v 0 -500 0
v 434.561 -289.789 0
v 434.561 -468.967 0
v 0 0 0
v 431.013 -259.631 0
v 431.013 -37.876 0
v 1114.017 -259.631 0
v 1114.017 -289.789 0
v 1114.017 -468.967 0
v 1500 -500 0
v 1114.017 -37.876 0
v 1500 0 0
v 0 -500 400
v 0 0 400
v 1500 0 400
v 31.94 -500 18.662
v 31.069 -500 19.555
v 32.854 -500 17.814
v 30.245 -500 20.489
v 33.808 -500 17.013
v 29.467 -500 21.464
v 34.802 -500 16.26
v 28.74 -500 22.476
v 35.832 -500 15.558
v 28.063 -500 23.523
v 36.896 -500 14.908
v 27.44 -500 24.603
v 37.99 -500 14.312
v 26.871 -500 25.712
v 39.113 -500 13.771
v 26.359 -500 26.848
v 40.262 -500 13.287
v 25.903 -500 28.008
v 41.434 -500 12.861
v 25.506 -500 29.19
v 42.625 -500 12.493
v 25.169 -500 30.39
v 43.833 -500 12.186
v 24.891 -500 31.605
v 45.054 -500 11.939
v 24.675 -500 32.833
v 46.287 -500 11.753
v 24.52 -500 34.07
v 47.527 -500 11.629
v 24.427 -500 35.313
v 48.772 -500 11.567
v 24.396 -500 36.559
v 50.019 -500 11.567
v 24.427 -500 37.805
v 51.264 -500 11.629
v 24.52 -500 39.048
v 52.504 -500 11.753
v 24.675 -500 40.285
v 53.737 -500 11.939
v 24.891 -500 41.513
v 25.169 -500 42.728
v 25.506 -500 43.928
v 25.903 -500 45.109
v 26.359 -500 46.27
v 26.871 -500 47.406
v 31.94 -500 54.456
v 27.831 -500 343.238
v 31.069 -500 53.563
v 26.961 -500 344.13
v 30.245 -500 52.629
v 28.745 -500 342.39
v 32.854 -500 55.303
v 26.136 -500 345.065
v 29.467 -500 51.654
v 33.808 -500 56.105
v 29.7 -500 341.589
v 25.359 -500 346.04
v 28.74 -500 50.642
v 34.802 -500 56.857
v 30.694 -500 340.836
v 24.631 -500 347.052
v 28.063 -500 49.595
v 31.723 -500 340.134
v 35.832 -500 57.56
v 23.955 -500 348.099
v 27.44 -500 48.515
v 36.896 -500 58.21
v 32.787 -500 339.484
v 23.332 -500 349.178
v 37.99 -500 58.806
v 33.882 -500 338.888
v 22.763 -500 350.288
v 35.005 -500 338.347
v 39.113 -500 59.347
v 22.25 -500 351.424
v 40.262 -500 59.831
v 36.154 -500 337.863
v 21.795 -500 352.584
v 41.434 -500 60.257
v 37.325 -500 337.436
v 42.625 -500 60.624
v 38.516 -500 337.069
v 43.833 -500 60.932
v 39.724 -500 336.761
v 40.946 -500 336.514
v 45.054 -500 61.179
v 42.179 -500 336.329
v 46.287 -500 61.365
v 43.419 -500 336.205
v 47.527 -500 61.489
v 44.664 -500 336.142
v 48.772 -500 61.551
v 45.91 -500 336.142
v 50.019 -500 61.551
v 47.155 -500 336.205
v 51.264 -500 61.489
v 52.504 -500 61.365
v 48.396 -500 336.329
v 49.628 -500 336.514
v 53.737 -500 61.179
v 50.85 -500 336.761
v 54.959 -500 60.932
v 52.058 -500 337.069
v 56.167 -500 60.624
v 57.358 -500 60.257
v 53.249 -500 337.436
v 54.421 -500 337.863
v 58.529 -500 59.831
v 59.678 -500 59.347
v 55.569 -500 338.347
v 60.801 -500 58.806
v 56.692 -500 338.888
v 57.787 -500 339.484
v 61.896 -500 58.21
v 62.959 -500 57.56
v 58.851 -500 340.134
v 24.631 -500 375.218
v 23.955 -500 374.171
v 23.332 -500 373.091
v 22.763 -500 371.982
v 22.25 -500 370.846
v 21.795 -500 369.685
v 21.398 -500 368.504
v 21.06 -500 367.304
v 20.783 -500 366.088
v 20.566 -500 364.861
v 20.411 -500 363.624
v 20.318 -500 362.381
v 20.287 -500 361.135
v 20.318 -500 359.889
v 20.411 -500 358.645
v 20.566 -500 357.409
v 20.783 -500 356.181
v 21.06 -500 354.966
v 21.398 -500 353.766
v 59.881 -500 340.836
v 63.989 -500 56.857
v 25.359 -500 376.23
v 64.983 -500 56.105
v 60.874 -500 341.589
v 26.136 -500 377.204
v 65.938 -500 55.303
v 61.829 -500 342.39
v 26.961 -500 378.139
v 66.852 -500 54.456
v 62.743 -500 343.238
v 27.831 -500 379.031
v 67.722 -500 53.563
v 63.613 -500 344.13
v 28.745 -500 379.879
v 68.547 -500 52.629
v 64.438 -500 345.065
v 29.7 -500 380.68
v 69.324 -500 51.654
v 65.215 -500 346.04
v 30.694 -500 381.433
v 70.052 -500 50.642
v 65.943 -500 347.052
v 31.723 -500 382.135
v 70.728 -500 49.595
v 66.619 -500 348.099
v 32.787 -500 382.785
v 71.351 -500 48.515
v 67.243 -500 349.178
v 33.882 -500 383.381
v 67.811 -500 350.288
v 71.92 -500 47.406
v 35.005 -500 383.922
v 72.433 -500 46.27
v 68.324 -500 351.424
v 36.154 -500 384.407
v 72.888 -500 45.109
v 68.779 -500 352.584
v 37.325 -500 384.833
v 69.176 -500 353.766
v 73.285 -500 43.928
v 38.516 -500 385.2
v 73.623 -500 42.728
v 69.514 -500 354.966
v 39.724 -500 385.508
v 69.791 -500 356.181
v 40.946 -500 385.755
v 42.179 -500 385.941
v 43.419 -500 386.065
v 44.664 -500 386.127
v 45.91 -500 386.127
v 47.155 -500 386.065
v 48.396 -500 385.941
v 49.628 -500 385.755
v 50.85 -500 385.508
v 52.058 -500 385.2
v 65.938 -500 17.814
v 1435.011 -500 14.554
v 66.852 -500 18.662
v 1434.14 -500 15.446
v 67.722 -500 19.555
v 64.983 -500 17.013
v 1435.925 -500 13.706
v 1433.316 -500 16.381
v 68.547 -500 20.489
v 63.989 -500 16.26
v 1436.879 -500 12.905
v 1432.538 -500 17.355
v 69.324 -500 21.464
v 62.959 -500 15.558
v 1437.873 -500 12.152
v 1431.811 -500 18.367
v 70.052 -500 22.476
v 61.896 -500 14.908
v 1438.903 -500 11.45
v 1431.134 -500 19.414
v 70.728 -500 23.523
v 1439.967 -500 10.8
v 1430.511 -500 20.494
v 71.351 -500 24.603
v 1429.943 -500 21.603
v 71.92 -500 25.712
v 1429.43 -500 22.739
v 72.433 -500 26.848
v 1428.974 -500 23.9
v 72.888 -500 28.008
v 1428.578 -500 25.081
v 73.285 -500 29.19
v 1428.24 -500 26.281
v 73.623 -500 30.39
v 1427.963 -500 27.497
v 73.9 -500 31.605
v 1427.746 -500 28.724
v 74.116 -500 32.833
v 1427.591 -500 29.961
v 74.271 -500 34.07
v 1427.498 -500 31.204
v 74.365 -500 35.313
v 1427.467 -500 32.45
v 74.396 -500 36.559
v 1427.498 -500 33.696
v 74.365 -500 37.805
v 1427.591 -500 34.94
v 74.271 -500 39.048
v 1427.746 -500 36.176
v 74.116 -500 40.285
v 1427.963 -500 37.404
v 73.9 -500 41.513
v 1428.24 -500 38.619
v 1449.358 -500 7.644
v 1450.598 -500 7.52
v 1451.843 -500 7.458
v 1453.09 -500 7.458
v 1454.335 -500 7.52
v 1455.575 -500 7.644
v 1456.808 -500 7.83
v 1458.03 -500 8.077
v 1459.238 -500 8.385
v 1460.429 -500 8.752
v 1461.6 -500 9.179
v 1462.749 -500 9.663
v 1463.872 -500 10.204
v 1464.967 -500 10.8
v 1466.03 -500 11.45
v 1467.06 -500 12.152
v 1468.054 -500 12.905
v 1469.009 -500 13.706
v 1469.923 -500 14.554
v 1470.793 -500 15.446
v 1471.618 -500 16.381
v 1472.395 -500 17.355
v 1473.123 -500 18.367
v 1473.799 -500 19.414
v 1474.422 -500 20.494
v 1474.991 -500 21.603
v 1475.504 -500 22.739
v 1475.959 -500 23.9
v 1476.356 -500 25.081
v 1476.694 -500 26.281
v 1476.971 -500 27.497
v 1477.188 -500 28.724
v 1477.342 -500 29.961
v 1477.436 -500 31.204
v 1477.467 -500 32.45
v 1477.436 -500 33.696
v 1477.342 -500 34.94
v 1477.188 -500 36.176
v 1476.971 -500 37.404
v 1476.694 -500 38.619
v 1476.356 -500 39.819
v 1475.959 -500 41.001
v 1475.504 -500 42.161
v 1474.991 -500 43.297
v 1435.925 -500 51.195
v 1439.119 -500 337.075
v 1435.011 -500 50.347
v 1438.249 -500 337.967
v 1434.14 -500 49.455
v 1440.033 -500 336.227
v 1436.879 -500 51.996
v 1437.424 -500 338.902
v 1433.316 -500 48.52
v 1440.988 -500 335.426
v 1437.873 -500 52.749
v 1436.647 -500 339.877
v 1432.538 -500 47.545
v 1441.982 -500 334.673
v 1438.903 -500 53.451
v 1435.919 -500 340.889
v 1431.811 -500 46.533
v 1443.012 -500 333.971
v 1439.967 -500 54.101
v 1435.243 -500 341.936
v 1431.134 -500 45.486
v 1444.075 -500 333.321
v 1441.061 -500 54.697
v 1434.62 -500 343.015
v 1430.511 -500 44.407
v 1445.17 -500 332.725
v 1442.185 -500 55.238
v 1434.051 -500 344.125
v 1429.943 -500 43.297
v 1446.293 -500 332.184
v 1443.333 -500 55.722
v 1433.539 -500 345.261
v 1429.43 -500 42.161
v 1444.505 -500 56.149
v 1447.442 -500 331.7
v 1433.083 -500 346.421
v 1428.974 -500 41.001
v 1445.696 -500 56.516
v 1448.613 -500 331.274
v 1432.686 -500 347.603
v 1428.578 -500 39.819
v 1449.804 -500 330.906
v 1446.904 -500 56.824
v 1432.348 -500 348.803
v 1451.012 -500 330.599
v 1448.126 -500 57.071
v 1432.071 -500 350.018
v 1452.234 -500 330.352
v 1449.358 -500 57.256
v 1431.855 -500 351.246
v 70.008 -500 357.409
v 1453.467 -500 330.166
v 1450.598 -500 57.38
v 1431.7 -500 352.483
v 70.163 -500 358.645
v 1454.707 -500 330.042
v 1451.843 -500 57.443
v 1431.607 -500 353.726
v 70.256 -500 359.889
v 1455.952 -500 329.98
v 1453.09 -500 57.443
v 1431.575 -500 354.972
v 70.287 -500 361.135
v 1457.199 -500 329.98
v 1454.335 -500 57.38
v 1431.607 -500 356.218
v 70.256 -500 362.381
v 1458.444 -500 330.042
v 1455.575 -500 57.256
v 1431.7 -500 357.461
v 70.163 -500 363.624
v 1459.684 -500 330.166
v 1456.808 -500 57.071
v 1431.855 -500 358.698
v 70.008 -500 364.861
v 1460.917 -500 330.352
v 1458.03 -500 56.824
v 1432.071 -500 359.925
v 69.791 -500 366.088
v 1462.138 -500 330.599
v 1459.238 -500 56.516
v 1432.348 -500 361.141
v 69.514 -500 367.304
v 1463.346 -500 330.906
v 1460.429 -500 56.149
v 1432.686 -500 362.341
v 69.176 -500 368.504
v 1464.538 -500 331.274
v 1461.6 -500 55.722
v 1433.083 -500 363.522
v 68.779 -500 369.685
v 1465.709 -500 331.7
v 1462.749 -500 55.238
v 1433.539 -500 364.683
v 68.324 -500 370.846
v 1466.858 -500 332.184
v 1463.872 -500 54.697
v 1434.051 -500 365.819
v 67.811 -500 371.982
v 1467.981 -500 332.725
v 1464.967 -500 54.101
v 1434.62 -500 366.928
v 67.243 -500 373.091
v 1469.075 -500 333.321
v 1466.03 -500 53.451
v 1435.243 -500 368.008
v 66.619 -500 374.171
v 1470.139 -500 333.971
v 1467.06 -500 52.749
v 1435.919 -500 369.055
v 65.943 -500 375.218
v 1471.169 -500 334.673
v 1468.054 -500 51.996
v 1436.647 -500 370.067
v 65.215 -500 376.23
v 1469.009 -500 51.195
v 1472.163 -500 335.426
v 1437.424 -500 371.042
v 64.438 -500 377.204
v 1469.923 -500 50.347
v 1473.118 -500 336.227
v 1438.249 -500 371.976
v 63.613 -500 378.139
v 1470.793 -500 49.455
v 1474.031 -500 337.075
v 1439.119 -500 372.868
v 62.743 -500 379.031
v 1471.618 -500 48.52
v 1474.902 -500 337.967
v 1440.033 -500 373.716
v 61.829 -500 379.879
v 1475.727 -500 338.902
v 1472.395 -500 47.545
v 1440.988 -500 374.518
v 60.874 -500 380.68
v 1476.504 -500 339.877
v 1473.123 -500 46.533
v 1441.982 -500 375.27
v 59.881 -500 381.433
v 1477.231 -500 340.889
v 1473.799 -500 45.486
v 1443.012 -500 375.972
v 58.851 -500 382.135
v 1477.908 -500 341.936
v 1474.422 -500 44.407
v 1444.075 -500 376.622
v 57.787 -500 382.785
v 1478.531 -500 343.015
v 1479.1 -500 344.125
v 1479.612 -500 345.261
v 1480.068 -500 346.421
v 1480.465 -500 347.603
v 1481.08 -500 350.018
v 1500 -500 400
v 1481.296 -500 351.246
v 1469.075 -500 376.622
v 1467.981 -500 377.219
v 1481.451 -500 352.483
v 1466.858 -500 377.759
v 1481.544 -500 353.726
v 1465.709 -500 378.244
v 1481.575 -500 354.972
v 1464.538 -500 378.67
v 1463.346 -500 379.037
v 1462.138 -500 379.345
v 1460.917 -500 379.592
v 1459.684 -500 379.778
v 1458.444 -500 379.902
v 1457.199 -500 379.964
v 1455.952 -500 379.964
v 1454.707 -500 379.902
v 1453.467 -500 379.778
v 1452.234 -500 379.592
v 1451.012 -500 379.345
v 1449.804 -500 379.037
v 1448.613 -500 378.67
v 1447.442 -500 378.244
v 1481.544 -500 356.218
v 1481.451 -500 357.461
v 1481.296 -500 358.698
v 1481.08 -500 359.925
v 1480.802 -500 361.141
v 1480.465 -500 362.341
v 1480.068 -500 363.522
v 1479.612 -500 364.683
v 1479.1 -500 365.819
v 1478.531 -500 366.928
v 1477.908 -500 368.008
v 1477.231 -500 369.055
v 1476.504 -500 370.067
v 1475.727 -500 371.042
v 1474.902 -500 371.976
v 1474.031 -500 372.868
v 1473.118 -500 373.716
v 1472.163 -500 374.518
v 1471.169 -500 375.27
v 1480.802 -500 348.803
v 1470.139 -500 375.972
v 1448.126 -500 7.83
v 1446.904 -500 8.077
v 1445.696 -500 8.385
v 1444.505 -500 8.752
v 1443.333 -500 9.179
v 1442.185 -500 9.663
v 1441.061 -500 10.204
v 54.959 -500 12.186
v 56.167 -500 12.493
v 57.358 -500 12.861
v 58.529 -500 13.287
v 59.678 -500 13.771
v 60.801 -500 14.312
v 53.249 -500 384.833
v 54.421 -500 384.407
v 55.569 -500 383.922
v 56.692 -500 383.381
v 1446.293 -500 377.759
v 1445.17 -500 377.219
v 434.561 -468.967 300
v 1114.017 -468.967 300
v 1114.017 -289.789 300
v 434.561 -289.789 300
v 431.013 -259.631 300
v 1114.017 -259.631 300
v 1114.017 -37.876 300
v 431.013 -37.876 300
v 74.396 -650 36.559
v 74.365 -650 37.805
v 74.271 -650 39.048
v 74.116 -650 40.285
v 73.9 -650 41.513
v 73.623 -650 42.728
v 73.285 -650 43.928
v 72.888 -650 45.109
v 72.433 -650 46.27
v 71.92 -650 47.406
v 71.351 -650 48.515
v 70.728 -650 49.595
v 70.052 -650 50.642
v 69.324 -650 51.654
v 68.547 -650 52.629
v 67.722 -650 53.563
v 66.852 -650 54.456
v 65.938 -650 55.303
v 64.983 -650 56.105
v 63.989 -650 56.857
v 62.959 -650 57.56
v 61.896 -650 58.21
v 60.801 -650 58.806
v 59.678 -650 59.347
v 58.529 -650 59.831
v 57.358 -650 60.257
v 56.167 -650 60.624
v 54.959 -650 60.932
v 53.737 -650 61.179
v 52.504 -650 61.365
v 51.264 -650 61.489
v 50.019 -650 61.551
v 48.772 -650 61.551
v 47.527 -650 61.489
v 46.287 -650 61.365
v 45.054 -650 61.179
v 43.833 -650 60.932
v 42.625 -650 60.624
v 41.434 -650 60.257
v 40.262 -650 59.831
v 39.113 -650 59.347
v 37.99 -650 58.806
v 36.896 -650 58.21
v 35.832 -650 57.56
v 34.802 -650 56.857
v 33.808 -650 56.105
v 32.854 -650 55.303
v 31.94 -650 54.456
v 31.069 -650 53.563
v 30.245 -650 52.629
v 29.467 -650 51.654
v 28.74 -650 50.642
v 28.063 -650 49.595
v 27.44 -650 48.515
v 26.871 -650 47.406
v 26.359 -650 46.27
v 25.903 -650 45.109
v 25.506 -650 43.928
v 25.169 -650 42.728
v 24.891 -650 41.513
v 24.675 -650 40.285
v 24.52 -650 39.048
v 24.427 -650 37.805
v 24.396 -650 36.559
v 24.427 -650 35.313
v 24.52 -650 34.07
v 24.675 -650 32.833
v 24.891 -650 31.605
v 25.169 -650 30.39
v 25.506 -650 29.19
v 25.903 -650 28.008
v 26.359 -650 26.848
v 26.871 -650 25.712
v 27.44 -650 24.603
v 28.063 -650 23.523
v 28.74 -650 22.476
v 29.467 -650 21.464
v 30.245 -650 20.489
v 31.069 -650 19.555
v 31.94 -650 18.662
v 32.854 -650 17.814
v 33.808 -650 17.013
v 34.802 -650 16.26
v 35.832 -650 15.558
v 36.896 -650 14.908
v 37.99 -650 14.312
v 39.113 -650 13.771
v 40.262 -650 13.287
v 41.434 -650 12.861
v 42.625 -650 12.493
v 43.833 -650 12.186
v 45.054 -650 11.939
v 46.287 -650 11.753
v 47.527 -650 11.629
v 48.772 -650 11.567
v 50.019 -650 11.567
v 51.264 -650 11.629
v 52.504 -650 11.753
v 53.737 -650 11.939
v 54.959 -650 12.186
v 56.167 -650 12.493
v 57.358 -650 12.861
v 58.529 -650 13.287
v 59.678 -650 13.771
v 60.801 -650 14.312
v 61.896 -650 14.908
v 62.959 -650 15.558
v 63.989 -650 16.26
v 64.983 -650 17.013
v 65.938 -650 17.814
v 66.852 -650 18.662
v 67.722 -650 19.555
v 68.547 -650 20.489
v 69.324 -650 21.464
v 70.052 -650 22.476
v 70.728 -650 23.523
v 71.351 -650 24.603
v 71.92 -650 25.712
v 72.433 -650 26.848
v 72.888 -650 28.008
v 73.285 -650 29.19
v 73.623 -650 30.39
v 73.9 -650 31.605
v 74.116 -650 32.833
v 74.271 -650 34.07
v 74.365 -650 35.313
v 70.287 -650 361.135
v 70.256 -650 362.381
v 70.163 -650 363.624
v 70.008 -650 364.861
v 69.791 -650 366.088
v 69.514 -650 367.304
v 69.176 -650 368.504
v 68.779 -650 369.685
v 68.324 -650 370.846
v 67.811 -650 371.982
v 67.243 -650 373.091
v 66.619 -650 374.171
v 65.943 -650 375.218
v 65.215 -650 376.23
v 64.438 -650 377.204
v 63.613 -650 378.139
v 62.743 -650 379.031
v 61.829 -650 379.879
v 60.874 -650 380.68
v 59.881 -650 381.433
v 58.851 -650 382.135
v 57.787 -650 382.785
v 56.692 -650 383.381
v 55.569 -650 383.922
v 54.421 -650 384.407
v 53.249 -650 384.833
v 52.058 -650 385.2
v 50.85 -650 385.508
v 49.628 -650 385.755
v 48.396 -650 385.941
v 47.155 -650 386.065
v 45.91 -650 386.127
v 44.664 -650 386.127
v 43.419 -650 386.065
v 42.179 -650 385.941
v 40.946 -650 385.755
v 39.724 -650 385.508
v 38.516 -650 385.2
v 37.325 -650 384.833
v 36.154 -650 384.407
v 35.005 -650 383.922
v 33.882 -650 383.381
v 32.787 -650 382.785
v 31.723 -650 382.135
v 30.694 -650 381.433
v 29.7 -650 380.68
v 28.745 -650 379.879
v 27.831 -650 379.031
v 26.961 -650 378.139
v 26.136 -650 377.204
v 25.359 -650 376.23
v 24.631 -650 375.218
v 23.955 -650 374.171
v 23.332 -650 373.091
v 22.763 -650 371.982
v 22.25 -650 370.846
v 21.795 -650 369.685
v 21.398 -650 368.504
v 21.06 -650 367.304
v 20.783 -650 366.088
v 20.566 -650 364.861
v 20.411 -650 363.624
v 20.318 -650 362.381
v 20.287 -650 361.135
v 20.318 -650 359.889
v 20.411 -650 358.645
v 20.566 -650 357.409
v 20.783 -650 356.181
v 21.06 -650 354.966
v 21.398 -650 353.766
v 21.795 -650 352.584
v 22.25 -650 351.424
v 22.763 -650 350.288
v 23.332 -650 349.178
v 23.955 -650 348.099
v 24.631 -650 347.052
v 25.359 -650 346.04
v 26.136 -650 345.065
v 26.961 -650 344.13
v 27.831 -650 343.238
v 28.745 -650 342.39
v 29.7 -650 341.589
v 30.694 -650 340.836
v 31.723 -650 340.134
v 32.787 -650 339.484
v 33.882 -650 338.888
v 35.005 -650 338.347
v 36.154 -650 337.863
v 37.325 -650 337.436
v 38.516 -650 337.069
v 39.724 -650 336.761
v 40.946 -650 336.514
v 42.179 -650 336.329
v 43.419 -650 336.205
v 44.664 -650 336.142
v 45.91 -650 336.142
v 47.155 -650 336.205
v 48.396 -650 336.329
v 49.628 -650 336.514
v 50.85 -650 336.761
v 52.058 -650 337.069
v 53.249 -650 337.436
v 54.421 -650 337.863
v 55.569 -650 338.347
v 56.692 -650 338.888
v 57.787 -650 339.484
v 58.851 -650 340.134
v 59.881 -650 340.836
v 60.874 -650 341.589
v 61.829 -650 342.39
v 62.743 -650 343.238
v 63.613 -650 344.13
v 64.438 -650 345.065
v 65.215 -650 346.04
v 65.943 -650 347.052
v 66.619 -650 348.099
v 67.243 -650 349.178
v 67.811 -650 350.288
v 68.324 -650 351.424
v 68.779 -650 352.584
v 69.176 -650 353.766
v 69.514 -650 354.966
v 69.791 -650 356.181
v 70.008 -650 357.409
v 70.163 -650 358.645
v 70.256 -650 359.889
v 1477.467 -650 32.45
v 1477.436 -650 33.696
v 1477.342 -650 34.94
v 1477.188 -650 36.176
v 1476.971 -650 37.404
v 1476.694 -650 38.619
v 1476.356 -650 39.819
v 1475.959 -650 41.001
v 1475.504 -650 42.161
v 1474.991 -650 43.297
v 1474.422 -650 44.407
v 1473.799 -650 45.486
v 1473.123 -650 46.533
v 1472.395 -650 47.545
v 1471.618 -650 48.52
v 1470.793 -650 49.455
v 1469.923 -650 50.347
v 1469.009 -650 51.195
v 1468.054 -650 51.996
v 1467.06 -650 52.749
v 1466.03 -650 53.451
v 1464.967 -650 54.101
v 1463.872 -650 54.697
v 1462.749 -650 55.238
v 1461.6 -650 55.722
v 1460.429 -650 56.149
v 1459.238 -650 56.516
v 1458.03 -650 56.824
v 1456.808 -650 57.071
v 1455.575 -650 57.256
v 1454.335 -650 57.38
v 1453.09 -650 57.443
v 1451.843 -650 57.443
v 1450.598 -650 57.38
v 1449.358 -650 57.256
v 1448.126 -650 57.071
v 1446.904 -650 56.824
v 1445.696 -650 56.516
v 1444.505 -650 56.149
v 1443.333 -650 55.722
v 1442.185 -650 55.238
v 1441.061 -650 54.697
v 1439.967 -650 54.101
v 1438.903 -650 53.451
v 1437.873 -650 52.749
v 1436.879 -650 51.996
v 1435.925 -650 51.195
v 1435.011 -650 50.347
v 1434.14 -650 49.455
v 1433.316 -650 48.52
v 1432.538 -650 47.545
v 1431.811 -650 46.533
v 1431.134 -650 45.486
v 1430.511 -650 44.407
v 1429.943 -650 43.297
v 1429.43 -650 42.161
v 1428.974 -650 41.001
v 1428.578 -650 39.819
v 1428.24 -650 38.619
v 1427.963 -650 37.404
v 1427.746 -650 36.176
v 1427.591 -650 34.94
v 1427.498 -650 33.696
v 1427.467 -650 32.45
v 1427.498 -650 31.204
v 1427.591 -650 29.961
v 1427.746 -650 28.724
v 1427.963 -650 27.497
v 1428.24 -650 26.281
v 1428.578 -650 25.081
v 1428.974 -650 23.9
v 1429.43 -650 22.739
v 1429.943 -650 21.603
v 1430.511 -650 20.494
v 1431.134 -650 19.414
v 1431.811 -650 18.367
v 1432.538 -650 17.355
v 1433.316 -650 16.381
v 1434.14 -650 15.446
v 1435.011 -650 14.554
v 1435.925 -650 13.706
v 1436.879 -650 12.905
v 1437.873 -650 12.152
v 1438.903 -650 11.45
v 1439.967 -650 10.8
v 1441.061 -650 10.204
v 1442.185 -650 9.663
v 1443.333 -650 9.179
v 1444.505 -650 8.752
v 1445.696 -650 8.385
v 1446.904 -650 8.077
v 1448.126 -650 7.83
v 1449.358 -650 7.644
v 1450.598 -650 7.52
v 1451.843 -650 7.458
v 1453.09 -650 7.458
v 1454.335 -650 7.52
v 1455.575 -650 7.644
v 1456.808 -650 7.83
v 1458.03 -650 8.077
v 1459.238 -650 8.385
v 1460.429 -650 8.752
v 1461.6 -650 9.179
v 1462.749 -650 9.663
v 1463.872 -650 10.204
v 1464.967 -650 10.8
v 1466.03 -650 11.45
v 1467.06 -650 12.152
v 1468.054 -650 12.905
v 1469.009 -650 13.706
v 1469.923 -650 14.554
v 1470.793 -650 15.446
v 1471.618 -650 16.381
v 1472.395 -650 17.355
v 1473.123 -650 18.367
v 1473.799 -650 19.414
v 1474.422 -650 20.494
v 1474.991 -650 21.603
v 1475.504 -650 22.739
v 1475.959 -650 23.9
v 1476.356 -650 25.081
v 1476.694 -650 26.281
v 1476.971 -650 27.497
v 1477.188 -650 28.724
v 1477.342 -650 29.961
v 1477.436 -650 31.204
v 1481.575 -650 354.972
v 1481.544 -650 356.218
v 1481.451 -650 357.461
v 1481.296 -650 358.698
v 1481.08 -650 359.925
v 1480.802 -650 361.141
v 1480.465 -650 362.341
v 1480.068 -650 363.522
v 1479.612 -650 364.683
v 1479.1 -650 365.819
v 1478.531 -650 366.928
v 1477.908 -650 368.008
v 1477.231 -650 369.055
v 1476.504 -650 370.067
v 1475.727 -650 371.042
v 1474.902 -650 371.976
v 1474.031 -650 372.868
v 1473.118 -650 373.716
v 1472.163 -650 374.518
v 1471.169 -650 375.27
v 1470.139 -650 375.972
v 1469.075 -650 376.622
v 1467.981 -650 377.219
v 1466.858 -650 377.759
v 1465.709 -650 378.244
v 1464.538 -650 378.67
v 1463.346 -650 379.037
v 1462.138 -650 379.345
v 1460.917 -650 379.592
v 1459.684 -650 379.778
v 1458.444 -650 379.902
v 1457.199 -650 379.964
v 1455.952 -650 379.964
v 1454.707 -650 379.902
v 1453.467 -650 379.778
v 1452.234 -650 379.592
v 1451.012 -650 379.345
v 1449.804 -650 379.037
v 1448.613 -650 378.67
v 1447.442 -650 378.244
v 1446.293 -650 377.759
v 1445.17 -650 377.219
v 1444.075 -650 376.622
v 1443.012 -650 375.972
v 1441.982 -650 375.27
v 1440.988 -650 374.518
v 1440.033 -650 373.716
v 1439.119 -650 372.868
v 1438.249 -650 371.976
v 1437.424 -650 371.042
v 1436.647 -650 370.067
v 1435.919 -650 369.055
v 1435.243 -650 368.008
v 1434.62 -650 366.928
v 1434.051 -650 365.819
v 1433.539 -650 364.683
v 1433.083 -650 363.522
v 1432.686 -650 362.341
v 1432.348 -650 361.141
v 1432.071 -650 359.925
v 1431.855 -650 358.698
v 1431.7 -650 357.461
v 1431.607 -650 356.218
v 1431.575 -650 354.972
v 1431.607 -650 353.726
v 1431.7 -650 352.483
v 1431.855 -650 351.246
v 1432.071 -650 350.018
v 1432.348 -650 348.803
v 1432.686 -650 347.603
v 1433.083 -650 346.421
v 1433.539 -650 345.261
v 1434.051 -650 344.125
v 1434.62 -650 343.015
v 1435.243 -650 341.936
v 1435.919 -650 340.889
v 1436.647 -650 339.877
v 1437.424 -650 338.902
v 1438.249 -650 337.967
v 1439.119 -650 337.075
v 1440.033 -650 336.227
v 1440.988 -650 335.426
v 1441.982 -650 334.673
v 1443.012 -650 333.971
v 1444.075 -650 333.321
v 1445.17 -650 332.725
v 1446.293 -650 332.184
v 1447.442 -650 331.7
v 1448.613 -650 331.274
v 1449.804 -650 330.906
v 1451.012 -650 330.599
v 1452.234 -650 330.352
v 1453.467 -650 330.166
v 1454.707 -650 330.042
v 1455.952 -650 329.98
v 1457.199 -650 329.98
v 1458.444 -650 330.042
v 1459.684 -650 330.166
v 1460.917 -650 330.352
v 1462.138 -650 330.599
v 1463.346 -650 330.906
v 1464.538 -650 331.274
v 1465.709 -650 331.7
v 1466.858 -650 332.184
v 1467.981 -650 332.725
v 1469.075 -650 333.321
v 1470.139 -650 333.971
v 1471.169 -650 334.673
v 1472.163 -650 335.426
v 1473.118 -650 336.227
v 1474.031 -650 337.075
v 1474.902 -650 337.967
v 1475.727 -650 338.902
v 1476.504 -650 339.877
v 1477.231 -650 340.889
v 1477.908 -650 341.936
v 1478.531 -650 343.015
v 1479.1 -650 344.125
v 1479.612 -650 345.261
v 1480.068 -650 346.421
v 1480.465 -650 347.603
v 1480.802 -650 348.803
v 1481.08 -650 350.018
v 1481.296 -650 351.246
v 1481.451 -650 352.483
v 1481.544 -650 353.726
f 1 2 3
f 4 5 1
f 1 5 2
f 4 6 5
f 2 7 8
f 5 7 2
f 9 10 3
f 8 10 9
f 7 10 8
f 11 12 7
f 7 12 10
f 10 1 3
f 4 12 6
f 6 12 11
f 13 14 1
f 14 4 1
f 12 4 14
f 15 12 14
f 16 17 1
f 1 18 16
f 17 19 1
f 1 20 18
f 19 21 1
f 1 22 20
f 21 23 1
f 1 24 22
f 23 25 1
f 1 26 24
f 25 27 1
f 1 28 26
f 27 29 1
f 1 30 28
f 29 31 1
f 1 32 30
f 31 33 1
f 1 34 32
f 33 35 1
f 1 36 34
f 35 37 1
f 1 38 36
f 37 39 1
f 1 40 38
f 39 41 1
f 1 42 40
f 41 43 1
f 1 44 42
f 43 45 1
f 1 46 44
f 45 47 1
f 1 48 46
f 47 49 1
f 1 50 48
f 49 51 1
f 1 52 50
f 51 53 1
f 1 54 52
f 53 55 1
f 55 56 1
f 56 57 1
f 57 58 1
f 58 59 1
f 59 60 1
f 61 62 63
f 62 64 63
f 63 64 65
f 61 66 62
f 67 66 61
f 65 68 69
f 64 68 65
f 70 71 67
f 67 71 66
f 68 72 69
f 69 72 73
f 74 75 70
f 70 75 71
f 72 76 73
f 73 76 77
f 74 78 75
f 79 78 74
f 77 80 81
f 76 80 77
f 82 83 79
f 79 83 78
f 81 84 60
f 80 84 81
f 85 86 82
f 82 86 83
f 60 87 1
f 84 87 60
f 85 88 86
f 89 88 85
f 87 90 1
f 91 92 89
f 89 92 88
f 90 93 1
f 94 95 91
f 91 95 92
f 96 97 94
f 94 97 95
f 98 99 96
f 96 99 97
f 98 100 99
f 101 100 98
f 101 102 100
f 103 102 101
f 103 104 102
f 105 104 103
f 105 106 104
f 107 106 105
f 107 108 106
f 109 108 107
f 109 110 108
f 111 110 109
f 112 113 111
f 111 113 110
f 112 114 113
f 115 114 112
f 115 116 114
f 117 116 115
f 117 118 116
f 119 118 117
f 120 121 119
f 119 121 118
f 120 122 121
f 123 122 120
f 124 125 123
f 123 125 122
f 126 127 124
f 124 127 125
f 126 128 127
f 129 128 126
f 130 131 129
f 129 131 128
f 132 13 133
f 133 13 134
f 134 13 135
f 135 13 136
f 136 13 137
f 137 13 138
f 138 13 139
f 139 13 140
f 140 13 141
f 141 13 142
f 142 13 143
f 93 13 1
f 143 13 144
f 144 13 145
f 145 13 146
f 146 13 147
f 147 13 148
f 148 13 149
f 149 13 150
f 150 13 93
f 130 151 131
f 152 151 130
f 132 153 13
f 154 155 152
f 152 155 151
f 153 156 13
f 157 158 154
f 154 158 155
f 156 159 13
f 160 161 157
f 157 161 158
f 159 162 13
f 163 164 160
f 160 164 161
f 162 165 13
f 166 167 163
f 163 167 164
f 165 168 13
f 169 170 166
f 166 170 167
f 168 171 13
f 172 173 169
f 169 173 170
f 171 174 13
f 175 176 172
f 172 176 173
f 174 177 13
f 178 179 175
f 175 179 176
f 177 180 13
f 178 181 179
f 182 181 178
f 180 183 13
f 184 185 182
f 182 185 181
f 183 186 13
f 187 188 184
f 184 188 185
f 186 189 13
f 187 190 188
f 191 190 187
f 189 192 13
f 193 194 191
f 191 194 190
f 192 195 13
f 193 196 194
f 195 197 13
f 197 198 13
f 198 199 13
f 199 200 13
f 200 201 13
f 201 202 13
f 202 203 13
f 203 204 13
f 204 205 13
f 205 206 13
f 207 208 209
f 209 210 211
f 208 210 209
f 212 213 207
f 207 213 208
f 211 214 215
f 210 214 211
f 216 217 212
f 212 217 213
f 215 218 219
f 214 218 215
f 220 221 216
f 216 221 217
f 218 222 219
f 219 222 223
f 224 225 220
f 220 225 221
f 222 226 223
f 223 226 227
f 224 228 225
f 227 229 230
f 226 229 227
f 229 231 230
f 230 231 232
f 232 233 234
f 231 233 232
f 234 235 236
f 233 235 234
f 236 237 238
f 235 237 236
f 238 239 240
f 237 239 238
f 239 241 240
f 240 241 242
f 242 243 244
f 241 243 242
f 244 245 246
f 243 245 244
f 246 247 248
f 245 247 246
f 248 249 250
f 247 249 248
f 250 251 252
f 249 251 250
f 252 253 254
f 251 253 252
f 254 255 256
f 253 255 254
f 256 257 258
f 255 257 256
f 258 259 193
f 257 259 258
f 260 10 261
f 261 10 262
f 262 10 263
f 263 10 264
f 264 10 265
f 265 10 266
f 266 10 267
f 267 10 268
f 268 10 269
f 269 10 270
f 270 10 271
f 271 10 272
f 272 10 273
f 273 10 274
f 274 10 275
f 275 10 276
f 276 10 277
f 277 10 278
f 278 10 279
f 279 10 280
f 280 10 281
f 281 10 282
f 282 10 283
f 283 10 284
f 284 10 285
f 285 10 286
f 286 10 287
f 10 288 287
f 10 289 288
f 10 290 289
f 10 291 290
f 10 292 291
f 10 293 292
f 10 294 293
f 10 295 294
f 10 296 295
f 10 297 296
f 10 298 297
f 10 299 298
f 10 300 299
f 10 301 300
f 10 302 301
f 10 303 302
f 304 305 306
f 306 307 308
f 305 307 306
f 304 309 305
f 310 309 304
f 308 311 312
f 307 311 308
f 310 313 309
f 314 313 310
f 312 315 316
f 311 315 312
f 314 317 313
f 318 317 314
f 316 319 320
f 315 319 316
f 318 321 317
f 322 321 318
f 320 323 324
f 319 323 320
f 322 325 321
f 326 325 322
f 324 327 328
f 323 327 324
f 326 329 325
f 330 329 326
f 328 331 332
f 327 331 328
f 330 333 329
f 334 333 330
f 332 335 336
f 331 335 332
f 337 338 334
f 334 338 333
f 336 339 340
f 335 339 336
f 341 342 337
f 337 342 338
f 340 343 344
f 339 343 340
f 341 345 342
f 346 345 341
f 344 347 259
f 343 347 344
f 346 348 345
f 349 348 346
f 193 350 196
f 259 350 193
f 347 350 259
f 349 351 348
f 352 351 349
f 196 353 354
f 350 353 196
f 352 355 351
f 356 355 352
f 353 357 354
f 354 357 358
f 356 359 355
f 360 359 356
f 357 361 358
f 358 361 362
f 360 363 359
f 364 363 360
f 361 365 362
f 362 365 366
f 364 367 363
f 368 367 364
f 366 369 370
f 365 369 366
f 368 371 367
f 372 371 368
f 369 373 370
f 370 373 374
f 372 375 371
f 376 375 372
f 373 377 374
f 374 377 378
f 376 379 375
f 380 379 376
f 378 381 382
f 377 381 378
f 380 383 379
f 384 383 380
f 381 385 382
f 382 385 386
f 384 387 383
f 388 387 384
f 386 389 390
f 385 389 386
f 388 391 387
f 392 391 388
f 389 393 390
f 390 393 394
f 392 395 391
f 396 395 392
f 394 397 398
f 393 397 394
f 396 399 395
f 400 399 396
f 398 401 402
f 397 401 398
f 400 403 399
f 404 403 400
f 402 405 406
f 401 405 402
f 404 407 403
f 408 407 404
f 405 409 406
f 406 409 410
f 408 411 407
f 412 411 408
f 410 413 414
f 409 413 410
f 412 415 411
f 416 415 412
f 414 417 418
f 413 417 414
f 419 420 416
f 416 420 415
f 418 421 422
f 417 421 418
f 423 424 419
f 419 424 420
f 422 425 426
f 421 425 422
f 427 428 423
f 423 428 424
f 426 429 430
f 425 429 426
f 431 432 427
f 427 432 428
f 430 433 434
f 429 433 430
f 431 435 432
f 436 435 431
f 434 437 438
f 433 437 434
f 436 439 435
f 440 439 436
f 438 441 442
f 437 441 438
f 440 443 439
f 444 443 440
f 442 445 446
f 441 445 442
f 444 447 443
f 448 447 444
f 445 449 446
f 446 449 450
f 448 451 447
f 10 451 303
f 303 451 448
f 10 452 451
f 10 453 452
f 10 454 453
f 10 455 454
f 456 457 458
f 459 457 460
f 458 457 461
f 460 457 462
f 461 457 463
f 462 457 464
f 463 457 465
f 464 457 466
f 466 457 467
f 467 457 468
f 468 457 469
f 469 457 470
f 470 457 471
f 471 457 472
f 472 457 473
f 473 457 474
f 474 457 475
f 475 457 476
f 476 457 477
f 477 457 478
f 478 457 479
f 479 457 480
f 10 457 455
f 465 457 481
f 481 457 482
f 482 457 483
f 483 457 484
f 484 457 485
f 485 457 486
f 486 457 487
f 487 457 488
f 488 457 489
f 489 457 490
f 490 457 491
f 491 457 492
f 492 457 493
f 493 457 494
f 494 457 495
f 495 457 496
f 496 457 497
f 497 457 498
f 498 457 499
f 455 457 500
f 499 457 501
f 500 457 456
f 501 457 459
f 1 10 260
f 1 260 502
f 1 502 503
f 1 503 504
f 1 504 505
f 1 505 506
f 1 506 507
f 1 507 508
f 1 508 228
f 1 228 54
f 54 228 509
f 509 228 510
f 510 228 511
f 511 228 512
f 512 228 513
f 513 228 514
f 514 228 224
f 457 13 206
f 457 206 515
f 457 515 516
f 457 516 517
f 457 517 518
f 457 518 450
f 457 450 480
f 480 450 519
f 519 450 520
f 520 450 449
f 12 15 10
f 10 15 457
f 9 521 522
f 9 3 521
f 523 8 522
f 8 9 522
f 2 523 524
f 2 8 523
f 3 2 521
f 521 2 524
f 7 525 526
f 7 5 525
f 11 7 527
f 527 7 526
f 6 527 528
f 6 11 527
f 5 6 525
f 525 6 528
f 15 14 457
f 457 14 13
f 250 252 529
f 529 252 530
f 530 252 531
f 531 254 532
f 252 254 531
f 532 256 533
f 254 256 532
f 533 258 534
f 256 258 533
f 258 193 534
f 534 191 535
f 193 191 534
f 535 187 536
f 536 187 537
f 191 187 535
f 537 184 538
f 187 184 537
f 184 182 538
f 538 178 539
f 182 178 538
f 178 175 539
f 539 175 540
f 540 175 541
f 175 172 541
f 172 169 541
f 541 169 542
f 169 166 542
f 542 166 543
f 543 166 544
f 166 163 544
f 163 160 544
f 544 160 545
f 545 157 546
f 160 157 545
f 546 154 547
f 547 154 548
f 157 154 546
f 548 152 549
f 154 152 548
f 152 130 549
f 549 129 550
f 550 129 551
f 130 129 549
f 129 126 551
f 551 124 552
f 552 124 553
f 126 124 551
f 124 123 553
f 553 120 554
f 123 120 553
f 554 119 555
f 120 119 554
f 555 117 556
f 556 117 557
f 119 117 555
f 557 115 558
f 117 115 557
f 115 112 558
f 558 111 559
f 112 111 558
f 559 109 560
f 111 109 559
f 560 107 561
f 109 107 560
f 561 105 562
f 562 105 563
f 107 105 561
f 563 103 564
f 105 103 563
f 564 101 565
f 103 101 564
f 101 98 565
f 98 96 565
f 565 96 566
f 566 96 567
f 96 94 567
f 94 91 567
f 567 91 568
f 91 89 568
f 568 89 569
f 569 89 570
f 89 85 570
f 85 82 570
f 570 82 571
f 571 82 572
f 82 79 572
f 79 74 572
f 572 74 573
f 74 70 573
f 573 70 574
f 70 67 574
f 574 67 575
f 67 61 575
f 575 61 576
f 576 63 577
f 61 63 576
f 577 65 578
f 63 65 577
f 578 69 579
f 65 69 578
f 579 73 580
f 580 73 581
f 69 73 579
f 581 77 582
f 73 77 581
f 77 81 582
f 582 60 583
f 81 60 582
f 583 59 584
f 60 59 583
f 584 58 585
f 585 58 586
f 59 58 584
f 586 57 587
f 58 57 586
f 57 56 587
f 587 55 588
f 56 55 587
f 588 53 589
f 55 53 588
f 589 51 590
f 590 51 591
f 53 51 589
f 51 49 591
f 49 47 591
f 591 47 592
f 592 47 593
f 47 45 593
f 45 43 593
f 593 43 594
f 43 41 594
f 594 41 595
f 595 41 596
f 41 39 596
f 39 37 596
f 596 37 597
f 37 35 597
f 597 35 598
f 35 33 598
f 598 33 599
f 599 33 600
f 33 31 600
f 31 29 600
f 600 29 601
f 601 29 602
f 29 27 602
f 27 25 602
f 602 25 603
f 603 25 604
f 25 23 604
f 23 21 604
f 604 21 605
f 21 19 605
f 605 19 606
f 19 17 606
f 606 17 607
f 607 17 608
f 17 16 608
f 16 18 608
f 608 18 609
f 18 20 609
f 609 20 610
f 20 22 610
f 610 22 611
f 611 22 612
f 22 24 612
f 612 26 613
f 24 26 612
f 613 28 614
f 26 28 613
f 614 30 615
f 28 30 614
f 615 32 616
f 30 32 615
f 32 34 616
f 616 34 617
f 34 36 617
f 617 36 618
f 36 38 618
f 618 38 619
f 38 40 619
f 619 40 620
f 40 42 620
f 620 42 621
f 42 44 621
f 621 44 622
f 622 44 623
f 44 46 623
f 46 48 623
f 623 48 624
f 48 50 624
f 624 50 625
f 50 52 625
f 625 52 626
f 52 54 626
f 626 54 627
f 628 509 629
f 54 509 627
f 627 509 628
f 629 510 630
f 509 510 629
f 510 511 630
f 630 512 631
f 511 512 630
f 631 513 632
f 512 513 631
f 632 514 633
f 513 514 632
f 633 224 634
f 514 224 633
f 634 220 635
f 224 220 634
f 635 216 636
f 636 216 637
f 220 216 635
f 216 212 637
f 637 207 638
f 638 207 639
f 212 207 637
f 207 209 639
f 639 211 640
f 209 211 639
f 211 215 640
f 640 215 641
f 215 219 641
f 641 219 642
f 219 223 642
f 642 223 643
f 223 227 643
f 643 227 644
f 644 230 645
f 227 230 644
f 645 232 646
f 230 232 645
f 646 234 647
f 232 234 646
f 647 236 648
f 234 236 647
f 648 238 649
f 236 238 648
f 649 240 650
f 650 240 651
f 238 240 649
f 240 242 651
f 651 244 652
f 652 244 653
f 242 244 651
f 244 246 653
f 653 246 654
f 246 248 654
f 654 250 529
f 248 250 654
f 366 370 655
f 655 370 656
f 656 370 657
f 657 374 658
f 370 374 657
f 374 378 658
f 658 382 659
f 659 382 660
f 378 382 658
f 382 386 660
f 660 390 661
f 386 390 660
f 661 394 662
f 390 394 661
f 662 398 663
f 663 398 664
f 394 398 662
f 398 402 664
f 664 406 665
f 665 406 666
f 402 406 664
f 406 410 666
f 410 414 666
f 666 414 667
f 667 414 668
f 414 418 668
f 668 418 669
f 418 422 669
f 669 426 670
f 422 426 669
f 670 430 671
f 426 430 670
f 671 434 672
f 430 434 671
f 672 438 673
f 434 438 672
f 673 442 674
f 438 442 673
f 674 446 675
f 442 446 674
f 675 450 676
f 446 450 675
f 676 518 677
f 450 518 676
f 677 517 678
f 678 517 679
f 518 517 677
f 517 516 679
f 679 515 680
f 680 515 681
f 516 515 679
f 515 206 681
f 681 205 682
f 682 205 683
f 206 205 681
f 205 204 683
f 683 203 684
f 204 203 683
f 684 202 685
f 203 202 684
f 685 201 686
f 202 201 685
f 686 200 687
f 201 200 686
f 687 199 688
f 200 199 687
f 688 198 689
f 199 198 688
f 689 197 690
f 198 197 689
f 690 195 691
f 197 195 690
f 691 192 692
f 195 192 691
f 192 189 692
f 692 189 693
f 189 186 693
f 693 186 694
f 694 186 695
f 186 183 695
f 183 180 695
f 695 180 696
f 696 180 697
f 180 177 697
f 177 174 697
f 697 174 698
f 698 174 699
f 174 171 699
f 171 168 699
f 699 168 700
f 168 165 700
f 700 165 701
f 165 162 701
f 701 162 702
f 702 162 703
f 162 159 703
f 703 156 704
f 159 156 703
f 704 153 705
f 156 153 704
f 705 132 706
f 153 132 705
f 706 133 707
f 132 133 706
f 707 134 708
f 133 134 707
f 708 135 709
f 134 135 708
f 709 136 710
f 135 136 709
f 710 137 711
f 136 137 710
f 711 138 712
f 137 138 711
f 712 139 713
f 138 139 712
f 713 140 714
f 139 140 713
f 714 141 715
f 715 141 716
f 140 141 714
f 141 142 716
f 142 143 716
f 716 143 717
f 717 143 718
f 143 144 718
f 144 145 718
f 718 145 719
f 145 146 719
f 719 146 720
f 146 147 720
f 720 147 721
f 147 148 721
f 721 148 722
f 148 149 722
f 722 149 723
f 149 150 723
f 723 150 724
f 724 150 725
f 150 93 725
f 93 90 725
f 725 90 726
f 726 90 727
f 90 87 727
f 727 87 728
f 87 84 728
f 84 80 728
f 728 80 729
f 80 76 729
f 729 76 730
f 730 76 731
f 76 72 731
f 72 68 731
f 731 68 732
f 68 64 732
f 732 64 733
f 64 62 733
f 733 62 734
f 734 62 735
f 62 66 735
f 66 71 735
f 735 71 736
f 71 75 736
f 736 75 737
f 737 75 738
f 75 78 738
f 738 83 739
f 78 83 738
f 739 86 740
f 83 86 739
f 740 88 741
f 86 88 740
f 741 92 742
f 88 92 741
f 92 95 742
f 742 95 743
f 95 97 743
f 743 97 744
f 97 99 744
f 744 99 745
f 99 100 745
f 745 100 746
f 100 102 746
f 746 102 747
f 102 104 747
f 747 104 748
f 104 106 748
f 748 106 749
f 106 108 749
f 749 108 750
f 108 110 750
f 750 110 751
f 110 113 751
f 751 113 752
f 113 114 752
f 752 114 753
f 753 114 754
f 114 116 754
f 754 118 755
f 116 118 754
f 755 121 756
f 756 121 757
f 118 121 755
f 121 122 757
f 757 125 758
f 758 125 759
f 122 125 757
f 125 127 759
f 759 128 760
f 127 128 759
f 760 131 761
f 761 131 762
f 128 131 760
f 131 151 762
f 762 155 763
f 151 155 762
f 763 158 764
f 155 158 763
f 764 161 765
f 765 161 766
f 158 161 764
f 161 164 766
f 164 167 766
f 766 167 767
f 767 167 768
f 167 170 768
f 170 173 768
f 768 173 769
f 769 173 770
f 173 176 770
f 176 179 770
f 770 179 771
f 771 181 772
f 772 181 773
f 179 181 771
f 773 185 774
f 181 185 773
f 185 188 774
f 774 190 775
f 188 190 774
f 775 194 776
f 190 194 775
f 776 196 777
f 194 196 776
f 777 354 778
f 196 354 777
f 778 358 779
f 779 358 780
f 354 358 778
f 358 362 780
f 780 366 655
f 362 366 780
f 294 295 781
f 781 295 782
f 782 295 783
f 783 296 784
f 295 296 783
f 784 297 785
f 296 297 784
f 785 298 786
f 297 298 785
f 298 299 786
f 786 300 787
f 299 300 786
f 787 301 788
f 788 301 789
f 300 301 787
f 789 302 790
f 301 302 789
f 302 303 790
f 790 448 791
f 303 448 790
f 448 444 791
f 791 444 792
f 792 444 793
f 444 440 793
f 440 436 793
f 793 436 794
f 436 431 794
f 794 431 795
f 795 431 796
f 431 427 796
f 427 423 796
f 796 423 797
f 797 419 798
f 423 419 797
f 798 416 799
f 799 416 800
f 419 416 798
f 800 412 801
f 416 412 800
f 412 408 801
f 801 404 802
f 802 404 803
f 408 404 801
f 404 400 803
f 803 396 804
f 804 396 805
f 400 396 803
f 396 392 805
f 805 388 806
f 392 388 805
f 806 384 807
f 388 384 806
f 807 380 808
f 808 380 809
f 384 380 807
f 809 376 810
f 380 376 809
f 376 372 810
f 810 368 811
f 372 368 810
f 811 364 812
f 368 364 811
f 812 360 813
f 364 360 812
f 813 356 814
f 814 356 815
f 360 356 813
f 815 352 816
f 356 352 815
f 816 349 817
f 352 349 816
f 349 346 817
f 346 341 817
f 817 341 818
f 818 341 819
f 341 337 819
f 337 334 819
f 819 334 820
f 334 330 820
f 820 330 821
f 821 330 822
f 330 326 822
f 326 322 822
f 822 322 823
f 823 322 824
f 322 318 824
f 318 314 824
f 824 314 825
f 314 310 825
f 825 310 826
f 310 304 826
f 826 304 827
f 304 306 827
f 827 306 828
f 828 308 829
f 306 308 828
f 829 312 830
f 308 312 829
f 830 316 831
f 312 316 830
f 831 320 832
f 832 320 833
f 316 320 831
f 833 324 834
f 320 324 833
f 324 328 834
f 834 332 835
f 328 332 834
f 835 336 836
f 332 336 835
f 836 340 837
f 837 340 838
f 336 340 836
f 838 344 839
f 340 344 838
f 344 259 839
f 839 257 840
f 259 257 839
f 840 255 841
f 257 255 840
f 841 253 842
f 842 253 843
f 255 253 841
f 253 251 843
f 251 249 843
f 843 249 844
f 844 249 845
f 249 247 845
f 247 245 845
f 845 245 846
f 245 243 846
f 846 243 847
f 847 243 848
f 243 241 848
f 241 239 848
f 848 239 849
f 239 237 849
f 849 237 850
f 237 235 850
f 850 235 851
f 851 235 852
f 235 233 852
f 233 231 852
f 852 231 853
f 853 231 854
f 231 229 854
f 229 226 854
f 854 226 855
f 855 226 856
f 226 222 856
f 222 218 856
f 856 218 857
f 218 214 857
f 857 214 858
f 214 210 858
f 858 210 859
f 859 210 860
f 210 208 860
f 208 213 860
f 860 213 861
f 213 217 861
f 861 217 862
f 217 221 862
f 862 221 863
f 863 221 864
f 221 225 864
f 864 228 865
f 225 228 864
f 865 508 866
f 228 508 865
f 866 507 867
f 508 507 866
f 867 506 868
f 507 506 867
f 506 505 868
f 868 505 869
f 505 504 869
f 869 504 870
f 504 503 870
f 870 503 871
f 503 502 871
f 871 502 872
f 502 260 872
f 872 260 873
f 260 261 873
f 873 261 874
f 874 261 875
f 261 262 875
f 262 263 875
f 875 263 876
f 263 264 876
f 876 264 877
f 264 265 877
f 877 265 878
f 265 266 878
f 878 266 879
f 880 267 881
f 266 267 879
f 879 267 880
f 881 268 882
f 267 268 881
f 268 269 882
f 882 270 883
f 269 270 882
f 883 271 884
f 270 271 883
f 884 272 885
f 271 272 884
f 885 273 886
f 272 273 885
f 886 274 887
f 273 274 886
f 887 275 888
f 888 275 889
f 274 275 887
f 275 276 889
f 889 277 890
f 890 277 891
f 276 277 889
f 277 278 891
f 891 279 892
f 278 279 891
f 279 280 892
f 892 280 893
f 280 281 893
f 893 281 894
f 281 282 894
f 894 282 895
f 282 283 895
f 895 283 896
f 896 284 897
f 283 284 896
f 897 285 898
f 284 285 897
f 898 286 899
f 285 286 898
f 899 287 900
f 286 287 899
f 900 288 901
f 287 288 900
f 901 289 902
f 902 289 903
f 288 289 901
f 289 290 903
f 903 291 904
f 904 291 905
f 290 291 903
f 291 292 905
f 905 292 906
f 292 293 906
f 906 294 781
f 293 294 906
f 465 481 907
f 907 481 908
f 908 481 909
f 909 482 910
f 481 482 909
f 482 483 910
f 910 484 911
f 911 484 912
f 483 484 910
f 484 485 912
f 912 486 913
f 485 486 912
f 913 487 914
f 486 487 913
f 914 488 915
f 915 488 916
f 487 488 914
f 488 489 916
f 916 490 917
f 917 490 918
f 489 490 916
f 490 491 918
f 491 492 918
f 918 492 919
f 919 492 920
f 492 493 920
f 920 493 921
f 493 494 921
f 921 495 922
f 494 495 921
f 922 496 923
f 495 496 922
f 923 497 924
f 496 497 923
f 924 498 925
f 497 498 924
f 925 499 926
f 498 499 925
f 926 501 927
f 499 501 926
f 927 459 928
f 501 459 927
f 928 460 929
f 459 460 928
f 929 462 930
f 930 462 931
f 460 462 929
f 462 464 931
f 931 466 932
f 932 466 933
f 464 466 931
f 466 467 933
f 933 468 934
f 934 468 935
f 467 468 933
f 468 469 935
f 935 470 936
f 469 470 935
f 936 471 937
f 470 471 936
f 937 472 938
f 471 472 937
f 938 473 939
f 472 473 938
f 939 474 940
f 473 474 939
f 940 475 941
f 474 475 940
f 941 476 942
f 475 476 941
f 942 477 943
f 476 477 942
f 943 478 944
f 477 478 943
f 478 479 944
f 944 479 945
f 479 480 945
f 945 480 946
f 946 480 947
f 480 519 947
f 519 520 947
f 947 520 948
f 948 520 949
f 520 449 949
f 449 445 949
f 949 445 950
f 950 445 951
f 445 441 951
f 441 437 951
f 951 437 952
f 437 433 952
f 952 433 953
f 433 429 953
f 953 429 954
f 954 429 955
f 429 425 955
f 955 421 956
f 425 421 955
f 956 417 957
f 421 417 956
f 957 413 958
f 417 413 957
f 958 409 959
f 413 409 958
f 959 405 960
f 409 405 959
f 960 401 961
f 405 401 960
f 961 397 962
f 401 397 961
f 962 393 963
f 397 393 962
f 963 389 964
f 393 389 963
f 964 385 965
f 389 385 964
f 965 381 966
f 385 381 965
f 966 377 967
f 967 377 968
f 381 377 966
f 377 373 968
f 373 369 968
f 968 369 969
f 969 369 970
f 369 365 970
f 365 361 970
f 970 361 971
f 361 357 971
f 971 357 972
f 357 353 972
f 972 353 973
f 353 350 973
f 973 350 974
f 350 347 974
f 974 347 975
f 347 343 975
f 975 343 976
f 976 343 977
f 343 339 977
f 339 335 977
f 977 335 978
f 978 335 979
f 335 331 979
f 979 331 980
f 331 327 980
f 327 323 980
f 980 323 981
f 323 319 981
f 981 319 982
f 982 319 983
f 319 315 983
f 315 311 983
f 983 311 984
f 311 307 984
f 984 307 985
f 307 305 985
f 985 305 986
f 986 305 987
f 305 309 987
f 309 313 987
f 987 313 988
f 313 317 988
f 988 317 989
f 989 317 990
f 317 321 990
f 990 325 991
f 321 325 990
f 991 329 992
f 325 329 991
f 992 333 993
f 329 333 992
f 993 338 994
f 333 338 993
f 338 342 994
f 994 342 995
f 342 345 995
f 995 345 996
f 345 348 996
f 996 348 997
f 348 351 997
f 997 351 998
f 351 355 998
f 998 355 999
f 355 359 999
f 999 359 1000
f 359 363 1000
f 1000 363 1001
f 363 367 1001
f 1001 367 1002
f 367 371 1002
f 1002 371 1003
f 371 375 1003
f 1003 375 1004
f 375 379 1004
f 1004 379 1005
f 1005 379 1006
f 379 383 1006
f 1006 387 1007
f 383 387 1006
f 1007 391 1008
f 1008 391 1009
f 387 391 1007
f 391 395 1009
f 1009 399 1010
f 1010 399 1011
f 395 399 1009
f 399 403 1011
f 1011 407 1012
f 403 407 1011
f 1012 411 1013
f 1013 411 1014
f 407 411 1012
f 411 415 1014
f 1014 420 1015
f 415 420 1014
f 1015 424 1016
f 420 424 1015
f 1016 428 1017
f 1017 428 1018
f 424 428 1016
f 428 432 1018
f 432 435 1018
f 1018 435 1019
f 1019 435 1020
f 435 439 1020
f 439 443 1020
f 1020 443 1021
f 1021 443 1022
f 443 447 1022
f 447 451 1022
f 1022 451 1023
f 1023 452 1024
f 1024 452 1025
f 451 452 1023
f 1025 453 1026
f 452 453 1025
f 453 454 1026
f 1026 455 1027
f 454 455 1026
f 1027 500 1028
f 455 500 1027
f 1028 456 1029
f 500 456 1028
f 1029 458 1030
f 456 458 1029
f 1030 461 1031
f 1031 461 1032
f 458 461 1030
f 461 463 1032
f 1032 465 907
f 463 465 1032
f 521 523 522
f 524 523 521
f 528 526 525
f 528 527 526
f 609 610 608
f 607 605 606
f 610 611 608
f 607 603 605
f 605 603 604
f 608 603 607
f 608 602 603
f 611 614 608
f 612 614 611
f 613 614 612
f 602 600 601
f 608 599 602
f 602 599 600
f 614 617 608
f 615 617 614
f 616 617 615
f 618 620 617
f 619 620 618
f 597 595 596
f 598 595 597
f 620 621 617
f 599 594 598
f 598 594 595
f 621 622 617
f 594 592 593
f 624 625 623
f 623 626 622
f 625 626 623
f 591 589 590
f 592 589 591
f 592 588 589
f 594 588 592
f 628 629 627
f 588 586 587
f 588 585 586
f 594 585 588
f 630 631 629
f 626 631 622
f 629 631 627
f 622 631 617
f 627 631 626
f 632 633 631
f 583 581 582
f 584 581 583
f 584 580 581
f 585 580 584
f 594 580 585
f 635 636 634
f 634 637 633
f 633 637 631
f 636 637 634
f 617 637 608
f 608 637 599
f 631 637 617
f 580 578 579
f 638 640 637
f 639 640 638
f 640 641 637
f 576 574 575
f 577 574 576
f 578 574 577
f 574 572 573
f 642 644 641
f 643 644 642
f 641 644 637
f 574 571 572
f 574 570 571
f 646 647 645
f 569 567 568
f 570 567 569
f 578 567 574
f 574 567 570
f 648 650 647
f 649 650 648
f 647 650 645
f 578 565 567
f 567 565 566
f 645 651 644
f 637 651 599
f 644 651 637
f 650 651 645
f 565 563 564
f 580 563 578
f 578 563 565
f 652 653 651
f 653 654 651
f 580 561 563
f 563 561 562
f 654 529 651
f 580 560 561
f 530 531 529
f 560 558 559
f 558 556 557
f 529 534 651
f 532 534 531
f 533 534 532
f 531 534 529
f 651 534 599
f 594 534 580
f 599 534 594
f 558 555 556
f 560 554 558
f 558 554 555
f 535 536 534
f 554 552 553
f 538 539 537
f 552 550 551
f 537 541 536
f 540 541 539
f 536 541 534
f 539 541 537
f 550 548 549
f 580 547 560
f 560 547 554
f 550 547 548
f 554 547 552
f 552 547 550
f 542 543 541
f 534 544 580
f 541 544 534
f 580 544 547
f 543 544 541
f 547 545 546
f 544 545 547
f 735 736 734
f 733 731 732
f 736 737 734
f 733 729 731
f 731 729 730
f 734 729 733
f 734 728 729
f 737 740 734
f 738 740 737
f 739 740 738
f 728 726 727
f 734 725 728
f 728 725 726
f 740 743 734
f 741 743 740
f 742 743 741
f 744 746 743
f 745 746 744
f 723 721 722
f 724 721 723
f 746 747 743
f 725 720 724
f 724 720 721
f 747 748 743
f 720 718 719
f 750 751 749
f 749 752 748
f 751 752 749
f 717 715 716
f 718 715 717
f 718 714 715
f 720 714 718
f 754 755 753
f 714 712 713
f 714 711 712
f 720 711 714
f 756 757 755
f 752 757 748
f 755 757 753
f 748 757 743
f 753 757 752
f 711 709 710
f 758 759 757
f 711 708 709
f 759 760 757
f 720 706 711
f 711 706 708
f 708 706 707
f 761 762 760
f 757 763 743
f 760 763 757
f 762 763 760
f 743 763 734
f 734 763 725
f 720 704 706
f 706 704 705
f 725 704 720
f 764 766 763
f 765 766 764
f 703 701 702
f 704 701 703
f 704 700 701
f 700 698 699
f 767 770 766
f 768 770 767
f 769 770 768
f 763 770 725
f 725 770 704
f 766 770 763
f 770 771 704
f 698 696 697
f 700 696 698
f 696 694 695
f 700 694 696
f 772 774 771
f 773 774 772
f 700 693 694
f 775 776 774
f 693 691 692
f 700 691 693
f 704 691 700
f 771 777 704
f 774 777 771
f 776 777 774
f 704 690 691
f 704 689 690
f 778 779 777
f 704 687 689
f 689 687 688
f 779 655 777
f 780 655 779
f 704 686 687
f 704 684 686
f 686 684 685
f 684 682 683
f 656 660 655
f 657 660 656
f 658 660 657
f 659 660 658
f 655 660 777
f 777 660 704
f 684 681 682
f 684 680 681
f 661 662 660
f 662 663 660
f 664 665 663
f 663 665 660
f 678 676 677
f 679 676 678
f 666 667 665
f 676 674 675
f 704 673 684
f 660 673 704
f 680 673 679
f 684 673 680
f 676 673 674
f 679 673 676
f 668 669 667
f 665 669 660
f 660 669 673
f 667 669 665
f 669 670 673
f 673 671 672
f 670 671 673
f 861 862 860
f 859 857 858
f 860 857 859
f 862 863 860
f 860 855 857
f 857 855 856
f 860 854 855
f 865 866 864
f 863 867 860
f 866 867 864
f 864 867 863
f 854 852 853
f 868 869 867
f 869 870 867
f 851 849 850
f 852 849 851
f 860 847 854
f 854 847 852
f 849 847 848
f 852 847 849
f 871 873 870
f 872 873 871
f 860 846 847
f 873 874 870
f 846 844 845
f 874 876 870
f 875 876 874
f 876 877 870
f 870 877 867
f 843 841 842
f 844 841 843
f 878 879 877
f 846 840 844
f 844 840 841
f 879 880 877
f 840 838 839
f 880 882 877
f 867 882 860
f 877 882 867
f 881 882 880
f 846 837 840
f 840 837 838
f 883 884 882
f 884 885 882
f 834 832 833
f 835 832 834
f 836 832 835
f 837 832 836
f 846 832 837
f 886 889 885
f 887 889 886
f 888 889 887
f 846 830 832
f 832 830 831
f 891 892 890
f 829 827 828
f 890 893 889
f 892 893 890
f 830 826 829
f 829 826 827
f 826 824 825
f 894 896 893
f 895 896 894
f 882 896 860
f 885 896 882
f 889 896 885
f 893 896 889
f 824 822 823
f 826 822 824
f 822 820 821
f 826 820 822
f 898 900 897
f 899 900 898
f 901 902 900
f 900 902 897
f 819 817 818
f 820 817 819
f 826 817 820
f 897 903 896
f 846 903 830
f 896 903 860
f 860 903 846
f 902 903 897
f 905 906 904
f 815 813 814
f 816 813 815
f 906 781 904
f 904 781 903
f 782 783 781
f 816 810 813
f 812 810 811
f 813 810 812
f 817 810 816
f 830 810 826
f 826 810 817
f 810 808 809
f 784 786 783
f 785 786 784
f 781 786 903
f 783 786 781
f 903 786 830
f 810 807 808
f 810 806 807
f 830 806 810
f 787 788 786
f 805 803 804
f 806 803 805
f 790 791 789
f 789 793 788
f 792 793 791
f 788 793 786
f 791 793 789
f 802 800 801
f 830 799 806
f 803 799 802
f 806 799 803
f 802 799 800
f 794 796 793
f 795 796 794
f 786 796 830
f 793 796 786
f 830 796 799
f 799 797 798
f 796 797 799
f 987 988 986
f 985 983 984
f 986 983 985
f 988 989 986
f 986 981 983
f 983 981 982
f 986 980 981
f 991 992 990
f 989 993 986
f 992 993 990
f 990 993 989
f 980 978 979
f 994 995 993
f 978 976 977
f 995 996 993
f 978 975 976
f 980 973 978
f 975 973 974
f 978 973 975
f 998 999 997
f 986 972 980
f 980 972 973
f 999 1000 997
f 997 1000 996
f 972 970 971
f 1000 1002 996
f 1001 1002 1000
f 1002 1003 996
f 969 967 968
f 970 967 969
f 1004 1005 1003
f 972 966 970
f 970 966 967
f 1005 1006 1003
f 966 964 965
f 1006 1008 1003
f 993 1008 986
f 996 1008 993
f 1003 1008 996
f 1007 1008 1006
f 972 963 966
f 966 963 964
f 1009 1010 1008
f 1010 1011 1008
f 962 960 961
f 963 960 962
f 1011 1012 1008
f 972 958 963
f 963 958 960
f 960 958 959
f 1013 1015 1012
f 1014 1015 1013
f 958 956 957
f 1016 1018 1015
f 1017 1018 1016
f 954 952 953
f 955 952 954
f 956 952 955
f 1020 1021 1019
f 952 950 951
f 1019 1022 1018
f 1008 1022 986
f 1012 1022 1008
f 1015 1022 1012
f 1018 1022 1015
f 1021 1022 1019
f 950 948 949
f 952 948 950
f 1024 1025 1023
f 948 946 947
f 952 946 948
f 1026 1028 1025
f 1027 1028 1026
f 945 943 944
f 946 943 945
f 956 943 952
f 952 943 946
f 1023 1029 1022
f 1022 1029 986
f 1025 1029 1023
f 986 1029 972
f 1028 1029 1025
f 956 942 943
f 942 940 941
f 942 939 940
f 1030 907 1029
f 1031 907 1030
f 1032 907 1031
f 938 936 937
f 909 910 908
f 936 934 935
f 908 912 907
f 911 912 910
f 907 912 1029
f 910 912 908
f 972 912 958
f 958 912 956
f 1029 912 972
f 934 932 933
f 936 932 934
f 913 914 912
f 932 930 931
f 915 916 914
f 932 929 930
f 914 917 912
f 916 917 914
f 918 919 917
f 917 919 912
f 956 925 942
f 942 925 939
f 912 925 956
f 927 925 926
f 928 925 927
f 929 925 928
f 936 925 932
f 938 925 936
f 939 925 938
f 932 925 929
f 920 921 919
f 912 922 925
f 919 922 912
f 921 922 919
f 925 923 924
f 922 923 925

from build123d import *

# Parameters (mm, degrees)
SKETCH_W      = 1500
SKETCH_H      = 400
PAD_DEPTH     = 500
SKETCH001_R   = 25
PAD001_DEPTH  = 150
SKETCH002_W   = 679.455933
SKETCH002_H   = 179.177673
SKETCH002_W_2 = 683.003968
SKETCH002_H_2 = 221.754555
POCKET_DEPTH  = 300


with BuildPart() as part:
    # Sketch → Pad (new body)
    with BuildSketch(Plane.XZ):
        with Locations((750, 200)):
            Rectangle(SKETCH_W, SKETCH_H)
    extrude(amount=PAD_DEPTH)

    # Sketch001 (on Face6 of Pad) → Pad001 (join)
    with BuildSketch(Plane.XZ.offset(500)):
        with Locations((45.287163, 361.134674)):
            Circle(SKETCH001_R)
        with Locations((49.395683, 36.55888)):
            Circle(SKETCH001_R)
        with Locations((1456.575439, 354.971802)):
            Circle(SKETCH001_R)
        with Locations((1452.466797, 32.450348)):
            Circle(SKETCH001_R)
    extrude(amount=PAD001_DEPTH)

    # Sketch002 (on Face1 of Pad001) → Pocket (cut)
    with BuildSketch(Plane(origin=(0, 0, 0), x_dir=(1, 0, 0), z_dir=(0, 0, -1))):
        with Locations((774.28888, 379.377991)):
            Rectangle(SKETCH002_W, SKETCH002_H)
        with Locations((772.514862, 148.753246)):
            Rectangle(SKETCH002_W_2, SKETCH002_H_2)
    extrude(amount=-POCKET_DEPTH, mode=Mode.SUBTRACT)


solid = part.part
